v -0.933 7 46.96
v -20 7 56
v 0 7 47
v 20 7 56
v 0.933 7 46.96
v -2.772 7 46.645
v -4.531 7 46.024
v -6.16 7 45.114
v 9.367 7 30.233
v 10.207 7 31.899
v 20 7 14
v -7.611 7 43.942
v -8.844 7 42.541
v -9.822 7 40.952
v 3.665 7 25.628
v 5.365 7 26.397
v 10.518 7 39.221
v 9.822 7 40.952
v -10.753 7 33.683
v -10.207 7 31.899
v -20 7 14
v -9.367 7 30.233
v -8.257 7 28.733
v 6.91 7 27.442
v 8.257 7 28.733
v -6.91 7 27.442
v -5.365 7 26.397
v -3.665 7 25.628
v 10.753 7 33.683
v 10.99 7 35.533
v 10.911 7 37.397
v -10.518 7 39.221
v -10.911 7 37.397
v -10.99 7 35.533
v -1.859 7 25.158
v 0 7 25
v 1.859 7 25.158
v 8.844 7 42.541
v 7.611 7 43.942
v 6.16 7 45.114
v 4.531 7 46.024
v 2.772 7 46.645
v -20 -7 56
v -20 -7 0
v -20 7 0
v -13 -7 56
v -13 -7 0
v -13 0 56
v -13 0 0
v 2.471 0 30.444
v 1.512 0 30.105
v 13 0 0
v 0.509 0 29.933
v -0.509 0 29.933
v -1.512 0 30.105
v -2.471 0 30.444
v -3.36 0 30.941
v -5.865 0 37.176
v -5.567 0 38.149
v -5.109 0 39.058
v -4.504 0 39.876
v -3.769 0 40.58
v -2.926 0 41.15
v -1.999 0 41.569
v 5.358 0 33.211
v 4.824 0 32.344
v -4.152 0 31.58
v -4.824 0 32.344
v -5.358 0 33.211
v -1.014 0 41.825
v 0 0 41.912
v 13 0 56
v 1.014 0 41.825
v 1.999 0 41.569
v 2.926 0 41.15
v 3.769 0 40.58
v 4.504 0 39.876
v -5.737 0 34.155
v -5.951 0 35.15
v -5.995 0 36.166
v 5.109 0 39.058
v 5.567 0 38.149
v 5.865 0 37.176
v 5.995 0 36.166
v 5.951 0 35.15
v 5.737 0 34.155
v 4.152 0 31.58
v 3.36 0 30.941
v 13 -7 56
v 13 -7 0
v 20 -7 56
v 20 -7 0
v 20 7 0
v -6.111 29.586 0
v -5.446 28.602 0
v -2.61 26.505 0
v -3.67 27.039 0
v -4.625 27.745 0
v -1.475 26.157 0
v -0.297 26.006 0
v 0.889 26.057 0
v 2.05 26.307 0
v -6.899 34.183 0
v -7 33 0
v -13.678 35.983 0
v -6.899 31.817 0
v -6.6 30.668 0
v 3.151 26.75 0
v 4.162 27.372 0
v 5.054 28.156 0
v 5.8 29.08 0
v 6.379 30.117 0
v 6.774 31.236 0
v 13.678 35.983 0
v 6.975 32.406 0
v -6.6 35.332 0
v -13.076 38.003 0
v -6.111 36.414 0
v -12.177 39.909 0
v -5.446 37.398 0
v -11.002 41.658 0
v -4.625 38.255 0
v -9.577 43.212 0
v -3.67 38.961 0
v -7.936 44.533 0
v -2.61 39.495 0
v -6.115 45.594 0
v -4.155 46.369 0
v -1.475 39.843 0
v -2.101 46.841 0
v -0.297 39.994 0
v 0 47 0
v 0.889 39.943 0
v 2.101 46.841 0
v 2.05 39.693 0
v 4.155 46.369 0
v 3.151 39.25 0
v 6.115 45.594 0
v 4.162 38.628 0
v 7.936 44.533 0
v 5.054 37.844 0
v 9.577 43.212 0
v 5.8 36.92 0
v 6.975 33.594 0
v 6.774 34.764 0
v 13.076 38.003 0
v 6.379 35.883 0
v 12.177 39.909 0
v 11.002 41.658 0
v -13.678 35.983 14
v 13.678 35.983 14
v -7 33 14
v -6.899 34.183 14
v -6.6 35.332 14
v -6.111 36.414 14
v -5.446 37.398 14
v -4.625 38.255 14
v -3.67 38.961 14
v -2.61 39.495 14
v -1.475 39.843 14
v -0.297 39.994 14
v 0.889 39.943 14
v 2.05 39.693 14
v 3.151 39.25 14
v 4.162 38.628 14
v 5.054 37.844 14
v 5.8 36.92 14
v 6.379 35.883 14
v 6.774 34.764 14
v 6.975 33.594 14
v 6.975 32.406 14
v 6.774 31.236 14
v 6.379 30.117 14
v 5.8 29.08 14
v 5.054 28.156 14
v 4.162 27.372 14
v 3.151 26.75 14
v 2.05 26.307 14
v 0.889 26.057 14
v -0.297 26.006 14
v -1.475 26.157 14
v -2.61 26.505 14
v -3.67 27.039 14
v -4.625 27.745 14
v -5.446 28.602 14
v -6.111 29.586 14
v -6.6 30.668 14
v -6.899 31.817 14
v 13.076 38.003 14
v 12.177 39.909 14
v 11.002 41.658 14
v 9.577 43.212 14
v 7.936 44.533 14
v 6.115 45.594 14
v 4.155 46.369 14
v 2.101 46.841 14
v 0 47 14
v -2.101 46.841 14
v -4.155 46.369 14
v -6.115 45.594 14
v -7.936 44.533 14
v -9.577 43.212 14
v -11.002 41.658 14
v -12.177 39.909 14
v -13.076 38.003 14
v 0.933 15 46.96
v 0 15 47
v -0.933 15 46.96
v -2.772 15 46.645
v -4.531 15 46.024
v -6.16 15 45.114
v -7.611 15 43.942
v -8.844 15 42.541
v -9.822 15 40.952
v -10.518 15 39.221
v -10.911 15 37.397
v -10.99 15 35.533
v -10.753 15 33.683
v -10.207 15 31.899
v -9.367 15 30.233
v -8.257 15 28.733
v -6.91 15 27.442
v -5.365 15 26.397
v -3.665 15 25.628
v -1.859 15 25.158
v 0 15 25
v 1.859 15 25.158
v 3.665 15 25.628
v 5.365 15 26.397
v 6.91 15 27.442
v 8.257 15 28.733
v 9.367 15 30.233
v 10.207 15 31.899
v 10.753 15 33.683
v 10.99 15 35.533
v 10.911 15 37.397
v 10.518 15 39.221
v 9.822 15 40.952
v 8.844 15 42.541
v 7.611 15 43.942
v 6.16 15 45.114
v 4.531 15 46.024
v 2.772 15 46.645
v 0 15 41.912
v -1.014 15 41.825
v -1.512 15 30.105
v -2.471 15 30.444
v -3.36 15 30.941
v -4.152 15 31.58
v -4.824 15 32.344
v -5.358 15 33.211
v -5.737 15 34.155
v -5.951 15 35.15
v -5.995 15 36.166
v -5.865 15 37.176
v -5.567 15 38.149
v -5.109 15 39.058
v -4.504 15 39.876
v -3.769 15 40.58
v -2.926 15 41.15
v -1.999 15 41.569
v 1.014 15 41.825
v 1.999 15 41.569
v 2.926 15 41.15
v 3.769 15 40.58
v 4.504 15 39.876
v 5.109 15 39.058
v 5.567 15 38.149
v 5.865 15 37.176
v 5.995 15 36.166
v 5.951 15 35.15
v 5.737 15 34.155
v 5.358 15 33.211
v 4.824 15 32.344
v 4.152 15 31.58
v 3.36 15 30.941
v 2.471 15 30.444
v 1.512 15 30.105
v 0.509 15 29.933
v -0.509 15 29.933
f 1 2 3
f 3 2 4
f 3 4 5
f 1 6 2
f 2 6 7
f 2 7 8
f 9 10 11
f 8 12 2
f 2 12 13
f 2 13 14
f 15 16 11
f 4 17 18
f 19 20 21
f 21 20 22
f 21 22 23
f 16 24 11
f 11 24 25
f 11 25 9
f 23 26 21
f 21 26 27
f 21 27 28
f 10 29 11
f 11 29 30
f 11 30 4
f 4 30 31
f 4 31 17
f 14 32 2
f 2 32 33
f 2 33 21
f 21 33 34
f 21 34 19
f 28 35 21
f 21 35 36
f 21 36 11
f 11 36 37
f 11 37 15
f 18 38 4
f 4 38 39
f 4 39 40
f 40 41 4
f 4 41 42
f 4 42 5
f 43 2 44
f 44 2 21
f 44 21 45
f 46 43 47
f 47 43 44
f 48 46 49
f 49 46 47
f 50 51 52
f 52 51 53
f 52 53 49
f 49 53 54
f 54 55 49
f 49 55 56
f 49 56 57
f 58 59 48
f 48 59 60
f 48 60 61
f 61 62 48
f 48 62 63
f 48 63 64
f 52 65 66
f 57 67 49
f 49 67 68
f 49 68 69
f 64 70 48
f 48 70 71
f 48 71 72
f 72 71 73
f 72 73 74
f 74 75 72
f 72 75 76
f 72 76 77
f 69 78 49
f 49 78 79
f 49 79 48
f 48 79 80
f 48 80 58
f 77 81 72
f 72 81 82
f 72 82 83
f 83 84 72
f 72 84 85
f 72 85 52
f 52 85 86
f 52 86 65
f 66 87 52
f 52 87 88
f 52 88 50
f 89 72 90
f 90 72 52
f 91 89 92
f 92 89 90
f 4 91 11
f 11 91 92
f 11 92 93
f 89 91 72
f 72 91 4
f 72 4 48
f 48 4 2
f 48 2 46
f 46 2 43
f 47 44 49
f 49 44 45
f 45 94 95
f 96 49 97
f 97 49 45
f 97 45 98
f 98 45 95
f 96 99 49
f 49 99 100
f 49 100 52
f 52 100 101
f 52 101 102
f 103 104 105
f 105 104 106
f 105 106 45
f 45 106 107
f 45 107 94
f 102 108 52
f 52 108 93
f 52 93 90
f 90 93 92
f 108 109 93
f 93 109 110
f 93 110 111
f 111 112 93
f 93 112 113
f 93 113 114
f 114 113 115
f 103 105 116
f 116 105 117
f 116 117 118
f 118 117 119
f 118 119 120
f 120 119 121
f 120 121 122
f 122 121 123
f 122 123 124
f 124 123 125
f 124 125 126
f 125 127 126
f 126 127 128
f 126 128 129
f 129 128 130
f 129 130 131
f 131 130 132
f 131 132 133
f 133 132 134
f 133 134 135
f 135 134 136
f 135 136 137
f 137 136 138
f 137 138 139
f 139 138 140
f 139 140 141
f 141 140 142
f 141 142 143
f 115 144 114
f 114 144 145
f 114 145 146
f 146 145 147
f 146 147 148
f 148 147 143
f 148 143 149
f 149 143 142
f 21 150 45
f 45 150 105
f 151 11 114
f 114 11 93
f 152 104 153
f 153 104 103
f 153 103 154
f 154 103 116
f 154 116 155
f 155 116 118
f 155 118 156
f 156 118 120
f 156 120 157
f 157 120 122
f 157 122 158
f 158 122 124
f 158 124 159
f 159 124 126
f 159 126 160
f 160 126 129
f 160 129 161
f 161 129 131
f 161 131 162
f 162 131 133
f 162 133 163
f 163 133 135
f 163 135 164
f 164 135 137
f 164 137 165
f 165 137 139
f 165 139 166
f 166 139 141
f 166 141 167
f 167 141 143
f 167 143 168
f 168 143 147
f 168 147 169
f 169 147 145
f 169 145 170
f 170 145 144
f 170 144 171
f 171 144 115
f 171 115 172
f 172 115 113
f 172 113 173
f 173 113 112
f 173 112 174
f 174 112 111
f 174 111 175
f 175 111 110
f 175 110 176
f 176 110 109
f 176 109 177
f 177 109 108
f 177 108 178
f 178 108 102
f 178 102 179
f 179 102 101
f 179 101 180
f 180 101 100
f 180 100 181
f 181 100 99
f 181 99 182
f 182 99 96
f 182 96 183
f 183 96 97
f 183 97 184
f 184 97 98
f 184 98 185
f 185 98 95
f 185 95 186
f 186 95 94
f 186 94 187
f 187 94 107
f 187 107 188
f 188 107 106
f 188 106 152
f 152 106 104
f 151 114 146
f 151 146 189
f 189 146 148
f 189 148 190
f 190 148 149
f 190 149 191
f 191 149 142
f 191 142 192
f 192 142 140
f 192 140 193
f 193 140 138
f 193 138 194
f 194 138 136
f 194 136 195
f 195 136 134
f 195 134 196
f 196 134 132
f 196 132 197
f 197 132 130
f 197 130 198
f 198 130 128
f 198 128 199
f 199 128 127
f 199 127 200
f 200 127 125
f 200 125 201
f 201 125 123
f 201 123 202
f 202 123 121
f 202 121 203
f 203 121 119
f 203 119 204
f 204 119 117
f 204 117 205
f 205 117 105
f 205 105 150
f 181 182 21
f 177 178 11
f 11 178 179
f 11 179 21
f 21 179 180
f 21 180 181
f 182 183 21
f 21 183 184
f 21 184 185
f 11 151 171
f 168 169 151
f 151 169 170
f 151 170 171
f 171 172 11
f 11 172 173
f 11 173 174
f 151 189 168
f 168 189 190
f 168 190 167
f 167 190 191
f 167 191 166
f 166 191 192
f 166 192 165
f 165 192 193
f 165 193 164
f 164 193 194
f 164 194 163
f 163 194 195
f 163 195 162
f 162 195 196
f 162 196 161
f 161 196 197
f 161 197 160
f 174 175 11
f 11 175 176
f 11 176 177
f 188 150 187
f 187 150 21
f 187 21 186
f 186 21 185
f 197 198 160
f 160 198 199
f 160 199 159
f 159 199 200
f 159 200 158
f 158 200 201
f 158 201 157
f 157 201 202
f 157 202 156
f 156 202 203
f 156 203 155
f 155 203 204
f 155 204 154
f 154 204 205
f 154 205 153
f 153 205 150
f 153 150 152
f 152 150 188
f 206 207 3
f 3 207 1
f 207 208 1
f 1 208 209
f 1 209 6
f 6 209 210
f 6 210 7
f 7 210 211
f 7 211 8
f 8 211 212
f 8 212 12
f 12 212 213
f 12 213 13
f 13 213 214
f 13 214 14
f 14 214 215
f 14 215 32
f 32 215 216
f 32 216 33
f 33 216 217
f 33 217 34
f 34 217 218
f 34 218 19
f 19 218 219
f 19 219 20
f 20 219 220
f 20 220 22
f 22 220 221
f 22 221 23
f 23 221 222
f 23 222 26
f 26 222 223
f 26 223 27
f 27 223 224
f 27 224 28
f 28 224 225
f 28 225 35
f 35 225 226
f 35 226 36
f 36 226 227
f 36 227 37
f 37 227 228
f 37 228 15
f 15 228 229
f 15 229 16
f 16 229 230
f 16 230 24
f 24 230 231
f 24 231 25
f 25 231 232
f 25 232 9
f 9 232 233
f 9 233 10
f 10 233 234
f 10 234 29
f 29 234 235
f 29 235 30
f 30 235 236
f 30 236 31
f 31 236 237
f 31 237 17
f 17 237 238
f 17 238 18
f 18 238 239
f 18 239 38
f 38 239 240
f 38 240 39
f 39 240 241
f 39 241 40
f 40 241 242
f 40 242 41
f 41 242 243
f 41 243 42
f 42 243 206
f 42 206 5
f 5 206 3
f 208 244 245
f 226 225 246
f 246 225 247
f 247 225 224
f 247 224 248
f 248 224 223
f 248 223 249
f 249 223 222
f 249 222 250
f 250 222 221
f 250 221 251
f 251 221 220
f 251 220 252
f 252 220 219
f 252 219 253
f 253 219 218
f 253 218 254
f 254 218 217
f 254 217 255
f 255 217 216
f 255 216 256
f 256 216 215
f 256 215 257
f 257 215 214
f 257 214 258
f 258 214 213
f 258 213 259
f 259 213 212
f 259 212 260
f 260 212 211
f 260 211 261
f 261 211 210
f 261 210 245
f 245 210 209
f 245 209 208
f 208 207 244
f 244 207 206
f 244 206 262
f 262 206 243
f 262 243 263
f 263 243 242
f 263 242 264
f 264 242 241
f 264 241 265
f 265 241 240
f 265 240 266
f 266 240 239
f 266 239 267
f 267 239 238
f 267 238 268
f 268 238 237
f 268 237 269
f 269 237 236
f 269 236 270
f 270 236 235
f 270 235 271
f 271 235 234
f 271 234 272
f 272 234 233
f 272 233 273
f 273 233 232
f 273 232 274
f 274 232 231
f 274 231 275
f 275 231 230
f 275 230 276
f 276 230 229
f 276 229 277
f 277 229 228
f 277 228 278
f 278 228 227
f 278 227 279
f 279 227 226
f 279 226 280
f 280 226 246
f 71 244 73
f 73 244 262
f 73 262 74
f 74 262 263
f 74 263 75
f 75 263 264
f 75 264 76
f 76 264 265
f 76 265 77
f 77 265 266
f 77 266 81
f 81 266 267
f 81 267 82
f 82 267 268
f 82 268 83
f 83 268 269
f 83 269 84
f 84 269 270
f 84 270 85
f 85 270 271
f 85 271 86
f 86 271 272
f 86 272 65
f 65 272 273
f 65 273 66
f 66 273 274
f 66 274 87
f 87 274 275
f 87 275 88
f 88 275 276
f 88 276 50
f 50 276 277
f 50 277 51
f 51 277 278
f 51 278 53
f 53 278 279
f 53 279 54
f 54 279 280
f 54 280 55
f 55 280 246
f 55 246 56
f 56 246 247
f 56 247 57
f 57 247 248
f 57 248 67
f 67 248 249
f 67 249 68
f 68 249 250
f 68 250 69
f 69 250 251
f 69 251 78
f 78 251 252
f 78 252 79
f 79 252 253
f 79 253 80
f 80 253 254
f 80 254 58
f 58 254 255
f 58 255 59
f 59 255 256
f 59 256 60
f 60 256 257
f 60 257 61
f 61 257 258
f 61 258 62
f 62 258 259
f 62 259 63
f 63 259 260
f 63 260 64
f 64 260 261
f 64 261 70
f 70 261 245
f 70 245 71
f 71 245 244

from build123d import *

# Parameters (mm, degrees)
EXTRUDE_1_DEPTH     = 56
SKETCH_2_R          = 7
EXTRUDE_2_DEPTH     = 14
SKETCH_3_R          = 11
EXTRUDE_3_DEPTH     = 8
SKETCH_5_R          = 6
CUT_EXTRUDE_2_DEPTH = 28


with BuildPart() as part:
    # 草图1 → 凸台-拉伸1 (new body)
    with BuildSketch(Plane.XY):
        Polygon((-13, -7), (-13, 0), (13, 0), (13, -7), (20, -7), (20, 7), (-20, 7), (-20, -7), align=None)
    extrude(amount=EXTRUDE_1_DEPTH)

    # 草图2 → 凸台-拉伸2 (add)
    with BuildSketch(Plane(origin=(0, 0, 0), x_dir=(-1, 0, 0), z_dir=(0, 0, -1))):
        with BuildLine():
            Line((-20, 7), (20, 7))
            Line((20, 7), (13.678424719, 35.98340363))
            ThreePointArc((13.678424719, 35.98340363), (0, 47), (-13.678424719, 35.98340363))
            Line((-13.678424719, 35.98340363), (-20, 7))
        make_face()
        with Locations((0, 33)):
            Circle(SKETCH_2_R, mode=Mode.SUBTRACT)
    extrude(amount=-EXTRUDE_2_DEPTH)

    # 草图3 → 凸台-拉伸3 (add)
    with BuildSketch(Plane(origin=(0, 7, 0), x_dir=(1, 0, 0), z_dir=(0, 1, 0))):
        with Locations((0, -36)):
            Circle(SKETCH_3_R)
    extrude(amount=EXTRUDE_3_DEPTH)

    # 草图5 → 切除-拉伸2 (cut)
    with BuildSketch(Plane(origin=(0, 15, 0), x_dir=(1, 0, 0), z_dir=(0, 1, 0))):
        with Locations((0, -35.911740673)):
            Circle(SKETCH_5_R)
    extrude(amount=-CUT_EXTRUDE_2_DEPTH, mode=Mode.SUBTRACT)


solid = part.part
